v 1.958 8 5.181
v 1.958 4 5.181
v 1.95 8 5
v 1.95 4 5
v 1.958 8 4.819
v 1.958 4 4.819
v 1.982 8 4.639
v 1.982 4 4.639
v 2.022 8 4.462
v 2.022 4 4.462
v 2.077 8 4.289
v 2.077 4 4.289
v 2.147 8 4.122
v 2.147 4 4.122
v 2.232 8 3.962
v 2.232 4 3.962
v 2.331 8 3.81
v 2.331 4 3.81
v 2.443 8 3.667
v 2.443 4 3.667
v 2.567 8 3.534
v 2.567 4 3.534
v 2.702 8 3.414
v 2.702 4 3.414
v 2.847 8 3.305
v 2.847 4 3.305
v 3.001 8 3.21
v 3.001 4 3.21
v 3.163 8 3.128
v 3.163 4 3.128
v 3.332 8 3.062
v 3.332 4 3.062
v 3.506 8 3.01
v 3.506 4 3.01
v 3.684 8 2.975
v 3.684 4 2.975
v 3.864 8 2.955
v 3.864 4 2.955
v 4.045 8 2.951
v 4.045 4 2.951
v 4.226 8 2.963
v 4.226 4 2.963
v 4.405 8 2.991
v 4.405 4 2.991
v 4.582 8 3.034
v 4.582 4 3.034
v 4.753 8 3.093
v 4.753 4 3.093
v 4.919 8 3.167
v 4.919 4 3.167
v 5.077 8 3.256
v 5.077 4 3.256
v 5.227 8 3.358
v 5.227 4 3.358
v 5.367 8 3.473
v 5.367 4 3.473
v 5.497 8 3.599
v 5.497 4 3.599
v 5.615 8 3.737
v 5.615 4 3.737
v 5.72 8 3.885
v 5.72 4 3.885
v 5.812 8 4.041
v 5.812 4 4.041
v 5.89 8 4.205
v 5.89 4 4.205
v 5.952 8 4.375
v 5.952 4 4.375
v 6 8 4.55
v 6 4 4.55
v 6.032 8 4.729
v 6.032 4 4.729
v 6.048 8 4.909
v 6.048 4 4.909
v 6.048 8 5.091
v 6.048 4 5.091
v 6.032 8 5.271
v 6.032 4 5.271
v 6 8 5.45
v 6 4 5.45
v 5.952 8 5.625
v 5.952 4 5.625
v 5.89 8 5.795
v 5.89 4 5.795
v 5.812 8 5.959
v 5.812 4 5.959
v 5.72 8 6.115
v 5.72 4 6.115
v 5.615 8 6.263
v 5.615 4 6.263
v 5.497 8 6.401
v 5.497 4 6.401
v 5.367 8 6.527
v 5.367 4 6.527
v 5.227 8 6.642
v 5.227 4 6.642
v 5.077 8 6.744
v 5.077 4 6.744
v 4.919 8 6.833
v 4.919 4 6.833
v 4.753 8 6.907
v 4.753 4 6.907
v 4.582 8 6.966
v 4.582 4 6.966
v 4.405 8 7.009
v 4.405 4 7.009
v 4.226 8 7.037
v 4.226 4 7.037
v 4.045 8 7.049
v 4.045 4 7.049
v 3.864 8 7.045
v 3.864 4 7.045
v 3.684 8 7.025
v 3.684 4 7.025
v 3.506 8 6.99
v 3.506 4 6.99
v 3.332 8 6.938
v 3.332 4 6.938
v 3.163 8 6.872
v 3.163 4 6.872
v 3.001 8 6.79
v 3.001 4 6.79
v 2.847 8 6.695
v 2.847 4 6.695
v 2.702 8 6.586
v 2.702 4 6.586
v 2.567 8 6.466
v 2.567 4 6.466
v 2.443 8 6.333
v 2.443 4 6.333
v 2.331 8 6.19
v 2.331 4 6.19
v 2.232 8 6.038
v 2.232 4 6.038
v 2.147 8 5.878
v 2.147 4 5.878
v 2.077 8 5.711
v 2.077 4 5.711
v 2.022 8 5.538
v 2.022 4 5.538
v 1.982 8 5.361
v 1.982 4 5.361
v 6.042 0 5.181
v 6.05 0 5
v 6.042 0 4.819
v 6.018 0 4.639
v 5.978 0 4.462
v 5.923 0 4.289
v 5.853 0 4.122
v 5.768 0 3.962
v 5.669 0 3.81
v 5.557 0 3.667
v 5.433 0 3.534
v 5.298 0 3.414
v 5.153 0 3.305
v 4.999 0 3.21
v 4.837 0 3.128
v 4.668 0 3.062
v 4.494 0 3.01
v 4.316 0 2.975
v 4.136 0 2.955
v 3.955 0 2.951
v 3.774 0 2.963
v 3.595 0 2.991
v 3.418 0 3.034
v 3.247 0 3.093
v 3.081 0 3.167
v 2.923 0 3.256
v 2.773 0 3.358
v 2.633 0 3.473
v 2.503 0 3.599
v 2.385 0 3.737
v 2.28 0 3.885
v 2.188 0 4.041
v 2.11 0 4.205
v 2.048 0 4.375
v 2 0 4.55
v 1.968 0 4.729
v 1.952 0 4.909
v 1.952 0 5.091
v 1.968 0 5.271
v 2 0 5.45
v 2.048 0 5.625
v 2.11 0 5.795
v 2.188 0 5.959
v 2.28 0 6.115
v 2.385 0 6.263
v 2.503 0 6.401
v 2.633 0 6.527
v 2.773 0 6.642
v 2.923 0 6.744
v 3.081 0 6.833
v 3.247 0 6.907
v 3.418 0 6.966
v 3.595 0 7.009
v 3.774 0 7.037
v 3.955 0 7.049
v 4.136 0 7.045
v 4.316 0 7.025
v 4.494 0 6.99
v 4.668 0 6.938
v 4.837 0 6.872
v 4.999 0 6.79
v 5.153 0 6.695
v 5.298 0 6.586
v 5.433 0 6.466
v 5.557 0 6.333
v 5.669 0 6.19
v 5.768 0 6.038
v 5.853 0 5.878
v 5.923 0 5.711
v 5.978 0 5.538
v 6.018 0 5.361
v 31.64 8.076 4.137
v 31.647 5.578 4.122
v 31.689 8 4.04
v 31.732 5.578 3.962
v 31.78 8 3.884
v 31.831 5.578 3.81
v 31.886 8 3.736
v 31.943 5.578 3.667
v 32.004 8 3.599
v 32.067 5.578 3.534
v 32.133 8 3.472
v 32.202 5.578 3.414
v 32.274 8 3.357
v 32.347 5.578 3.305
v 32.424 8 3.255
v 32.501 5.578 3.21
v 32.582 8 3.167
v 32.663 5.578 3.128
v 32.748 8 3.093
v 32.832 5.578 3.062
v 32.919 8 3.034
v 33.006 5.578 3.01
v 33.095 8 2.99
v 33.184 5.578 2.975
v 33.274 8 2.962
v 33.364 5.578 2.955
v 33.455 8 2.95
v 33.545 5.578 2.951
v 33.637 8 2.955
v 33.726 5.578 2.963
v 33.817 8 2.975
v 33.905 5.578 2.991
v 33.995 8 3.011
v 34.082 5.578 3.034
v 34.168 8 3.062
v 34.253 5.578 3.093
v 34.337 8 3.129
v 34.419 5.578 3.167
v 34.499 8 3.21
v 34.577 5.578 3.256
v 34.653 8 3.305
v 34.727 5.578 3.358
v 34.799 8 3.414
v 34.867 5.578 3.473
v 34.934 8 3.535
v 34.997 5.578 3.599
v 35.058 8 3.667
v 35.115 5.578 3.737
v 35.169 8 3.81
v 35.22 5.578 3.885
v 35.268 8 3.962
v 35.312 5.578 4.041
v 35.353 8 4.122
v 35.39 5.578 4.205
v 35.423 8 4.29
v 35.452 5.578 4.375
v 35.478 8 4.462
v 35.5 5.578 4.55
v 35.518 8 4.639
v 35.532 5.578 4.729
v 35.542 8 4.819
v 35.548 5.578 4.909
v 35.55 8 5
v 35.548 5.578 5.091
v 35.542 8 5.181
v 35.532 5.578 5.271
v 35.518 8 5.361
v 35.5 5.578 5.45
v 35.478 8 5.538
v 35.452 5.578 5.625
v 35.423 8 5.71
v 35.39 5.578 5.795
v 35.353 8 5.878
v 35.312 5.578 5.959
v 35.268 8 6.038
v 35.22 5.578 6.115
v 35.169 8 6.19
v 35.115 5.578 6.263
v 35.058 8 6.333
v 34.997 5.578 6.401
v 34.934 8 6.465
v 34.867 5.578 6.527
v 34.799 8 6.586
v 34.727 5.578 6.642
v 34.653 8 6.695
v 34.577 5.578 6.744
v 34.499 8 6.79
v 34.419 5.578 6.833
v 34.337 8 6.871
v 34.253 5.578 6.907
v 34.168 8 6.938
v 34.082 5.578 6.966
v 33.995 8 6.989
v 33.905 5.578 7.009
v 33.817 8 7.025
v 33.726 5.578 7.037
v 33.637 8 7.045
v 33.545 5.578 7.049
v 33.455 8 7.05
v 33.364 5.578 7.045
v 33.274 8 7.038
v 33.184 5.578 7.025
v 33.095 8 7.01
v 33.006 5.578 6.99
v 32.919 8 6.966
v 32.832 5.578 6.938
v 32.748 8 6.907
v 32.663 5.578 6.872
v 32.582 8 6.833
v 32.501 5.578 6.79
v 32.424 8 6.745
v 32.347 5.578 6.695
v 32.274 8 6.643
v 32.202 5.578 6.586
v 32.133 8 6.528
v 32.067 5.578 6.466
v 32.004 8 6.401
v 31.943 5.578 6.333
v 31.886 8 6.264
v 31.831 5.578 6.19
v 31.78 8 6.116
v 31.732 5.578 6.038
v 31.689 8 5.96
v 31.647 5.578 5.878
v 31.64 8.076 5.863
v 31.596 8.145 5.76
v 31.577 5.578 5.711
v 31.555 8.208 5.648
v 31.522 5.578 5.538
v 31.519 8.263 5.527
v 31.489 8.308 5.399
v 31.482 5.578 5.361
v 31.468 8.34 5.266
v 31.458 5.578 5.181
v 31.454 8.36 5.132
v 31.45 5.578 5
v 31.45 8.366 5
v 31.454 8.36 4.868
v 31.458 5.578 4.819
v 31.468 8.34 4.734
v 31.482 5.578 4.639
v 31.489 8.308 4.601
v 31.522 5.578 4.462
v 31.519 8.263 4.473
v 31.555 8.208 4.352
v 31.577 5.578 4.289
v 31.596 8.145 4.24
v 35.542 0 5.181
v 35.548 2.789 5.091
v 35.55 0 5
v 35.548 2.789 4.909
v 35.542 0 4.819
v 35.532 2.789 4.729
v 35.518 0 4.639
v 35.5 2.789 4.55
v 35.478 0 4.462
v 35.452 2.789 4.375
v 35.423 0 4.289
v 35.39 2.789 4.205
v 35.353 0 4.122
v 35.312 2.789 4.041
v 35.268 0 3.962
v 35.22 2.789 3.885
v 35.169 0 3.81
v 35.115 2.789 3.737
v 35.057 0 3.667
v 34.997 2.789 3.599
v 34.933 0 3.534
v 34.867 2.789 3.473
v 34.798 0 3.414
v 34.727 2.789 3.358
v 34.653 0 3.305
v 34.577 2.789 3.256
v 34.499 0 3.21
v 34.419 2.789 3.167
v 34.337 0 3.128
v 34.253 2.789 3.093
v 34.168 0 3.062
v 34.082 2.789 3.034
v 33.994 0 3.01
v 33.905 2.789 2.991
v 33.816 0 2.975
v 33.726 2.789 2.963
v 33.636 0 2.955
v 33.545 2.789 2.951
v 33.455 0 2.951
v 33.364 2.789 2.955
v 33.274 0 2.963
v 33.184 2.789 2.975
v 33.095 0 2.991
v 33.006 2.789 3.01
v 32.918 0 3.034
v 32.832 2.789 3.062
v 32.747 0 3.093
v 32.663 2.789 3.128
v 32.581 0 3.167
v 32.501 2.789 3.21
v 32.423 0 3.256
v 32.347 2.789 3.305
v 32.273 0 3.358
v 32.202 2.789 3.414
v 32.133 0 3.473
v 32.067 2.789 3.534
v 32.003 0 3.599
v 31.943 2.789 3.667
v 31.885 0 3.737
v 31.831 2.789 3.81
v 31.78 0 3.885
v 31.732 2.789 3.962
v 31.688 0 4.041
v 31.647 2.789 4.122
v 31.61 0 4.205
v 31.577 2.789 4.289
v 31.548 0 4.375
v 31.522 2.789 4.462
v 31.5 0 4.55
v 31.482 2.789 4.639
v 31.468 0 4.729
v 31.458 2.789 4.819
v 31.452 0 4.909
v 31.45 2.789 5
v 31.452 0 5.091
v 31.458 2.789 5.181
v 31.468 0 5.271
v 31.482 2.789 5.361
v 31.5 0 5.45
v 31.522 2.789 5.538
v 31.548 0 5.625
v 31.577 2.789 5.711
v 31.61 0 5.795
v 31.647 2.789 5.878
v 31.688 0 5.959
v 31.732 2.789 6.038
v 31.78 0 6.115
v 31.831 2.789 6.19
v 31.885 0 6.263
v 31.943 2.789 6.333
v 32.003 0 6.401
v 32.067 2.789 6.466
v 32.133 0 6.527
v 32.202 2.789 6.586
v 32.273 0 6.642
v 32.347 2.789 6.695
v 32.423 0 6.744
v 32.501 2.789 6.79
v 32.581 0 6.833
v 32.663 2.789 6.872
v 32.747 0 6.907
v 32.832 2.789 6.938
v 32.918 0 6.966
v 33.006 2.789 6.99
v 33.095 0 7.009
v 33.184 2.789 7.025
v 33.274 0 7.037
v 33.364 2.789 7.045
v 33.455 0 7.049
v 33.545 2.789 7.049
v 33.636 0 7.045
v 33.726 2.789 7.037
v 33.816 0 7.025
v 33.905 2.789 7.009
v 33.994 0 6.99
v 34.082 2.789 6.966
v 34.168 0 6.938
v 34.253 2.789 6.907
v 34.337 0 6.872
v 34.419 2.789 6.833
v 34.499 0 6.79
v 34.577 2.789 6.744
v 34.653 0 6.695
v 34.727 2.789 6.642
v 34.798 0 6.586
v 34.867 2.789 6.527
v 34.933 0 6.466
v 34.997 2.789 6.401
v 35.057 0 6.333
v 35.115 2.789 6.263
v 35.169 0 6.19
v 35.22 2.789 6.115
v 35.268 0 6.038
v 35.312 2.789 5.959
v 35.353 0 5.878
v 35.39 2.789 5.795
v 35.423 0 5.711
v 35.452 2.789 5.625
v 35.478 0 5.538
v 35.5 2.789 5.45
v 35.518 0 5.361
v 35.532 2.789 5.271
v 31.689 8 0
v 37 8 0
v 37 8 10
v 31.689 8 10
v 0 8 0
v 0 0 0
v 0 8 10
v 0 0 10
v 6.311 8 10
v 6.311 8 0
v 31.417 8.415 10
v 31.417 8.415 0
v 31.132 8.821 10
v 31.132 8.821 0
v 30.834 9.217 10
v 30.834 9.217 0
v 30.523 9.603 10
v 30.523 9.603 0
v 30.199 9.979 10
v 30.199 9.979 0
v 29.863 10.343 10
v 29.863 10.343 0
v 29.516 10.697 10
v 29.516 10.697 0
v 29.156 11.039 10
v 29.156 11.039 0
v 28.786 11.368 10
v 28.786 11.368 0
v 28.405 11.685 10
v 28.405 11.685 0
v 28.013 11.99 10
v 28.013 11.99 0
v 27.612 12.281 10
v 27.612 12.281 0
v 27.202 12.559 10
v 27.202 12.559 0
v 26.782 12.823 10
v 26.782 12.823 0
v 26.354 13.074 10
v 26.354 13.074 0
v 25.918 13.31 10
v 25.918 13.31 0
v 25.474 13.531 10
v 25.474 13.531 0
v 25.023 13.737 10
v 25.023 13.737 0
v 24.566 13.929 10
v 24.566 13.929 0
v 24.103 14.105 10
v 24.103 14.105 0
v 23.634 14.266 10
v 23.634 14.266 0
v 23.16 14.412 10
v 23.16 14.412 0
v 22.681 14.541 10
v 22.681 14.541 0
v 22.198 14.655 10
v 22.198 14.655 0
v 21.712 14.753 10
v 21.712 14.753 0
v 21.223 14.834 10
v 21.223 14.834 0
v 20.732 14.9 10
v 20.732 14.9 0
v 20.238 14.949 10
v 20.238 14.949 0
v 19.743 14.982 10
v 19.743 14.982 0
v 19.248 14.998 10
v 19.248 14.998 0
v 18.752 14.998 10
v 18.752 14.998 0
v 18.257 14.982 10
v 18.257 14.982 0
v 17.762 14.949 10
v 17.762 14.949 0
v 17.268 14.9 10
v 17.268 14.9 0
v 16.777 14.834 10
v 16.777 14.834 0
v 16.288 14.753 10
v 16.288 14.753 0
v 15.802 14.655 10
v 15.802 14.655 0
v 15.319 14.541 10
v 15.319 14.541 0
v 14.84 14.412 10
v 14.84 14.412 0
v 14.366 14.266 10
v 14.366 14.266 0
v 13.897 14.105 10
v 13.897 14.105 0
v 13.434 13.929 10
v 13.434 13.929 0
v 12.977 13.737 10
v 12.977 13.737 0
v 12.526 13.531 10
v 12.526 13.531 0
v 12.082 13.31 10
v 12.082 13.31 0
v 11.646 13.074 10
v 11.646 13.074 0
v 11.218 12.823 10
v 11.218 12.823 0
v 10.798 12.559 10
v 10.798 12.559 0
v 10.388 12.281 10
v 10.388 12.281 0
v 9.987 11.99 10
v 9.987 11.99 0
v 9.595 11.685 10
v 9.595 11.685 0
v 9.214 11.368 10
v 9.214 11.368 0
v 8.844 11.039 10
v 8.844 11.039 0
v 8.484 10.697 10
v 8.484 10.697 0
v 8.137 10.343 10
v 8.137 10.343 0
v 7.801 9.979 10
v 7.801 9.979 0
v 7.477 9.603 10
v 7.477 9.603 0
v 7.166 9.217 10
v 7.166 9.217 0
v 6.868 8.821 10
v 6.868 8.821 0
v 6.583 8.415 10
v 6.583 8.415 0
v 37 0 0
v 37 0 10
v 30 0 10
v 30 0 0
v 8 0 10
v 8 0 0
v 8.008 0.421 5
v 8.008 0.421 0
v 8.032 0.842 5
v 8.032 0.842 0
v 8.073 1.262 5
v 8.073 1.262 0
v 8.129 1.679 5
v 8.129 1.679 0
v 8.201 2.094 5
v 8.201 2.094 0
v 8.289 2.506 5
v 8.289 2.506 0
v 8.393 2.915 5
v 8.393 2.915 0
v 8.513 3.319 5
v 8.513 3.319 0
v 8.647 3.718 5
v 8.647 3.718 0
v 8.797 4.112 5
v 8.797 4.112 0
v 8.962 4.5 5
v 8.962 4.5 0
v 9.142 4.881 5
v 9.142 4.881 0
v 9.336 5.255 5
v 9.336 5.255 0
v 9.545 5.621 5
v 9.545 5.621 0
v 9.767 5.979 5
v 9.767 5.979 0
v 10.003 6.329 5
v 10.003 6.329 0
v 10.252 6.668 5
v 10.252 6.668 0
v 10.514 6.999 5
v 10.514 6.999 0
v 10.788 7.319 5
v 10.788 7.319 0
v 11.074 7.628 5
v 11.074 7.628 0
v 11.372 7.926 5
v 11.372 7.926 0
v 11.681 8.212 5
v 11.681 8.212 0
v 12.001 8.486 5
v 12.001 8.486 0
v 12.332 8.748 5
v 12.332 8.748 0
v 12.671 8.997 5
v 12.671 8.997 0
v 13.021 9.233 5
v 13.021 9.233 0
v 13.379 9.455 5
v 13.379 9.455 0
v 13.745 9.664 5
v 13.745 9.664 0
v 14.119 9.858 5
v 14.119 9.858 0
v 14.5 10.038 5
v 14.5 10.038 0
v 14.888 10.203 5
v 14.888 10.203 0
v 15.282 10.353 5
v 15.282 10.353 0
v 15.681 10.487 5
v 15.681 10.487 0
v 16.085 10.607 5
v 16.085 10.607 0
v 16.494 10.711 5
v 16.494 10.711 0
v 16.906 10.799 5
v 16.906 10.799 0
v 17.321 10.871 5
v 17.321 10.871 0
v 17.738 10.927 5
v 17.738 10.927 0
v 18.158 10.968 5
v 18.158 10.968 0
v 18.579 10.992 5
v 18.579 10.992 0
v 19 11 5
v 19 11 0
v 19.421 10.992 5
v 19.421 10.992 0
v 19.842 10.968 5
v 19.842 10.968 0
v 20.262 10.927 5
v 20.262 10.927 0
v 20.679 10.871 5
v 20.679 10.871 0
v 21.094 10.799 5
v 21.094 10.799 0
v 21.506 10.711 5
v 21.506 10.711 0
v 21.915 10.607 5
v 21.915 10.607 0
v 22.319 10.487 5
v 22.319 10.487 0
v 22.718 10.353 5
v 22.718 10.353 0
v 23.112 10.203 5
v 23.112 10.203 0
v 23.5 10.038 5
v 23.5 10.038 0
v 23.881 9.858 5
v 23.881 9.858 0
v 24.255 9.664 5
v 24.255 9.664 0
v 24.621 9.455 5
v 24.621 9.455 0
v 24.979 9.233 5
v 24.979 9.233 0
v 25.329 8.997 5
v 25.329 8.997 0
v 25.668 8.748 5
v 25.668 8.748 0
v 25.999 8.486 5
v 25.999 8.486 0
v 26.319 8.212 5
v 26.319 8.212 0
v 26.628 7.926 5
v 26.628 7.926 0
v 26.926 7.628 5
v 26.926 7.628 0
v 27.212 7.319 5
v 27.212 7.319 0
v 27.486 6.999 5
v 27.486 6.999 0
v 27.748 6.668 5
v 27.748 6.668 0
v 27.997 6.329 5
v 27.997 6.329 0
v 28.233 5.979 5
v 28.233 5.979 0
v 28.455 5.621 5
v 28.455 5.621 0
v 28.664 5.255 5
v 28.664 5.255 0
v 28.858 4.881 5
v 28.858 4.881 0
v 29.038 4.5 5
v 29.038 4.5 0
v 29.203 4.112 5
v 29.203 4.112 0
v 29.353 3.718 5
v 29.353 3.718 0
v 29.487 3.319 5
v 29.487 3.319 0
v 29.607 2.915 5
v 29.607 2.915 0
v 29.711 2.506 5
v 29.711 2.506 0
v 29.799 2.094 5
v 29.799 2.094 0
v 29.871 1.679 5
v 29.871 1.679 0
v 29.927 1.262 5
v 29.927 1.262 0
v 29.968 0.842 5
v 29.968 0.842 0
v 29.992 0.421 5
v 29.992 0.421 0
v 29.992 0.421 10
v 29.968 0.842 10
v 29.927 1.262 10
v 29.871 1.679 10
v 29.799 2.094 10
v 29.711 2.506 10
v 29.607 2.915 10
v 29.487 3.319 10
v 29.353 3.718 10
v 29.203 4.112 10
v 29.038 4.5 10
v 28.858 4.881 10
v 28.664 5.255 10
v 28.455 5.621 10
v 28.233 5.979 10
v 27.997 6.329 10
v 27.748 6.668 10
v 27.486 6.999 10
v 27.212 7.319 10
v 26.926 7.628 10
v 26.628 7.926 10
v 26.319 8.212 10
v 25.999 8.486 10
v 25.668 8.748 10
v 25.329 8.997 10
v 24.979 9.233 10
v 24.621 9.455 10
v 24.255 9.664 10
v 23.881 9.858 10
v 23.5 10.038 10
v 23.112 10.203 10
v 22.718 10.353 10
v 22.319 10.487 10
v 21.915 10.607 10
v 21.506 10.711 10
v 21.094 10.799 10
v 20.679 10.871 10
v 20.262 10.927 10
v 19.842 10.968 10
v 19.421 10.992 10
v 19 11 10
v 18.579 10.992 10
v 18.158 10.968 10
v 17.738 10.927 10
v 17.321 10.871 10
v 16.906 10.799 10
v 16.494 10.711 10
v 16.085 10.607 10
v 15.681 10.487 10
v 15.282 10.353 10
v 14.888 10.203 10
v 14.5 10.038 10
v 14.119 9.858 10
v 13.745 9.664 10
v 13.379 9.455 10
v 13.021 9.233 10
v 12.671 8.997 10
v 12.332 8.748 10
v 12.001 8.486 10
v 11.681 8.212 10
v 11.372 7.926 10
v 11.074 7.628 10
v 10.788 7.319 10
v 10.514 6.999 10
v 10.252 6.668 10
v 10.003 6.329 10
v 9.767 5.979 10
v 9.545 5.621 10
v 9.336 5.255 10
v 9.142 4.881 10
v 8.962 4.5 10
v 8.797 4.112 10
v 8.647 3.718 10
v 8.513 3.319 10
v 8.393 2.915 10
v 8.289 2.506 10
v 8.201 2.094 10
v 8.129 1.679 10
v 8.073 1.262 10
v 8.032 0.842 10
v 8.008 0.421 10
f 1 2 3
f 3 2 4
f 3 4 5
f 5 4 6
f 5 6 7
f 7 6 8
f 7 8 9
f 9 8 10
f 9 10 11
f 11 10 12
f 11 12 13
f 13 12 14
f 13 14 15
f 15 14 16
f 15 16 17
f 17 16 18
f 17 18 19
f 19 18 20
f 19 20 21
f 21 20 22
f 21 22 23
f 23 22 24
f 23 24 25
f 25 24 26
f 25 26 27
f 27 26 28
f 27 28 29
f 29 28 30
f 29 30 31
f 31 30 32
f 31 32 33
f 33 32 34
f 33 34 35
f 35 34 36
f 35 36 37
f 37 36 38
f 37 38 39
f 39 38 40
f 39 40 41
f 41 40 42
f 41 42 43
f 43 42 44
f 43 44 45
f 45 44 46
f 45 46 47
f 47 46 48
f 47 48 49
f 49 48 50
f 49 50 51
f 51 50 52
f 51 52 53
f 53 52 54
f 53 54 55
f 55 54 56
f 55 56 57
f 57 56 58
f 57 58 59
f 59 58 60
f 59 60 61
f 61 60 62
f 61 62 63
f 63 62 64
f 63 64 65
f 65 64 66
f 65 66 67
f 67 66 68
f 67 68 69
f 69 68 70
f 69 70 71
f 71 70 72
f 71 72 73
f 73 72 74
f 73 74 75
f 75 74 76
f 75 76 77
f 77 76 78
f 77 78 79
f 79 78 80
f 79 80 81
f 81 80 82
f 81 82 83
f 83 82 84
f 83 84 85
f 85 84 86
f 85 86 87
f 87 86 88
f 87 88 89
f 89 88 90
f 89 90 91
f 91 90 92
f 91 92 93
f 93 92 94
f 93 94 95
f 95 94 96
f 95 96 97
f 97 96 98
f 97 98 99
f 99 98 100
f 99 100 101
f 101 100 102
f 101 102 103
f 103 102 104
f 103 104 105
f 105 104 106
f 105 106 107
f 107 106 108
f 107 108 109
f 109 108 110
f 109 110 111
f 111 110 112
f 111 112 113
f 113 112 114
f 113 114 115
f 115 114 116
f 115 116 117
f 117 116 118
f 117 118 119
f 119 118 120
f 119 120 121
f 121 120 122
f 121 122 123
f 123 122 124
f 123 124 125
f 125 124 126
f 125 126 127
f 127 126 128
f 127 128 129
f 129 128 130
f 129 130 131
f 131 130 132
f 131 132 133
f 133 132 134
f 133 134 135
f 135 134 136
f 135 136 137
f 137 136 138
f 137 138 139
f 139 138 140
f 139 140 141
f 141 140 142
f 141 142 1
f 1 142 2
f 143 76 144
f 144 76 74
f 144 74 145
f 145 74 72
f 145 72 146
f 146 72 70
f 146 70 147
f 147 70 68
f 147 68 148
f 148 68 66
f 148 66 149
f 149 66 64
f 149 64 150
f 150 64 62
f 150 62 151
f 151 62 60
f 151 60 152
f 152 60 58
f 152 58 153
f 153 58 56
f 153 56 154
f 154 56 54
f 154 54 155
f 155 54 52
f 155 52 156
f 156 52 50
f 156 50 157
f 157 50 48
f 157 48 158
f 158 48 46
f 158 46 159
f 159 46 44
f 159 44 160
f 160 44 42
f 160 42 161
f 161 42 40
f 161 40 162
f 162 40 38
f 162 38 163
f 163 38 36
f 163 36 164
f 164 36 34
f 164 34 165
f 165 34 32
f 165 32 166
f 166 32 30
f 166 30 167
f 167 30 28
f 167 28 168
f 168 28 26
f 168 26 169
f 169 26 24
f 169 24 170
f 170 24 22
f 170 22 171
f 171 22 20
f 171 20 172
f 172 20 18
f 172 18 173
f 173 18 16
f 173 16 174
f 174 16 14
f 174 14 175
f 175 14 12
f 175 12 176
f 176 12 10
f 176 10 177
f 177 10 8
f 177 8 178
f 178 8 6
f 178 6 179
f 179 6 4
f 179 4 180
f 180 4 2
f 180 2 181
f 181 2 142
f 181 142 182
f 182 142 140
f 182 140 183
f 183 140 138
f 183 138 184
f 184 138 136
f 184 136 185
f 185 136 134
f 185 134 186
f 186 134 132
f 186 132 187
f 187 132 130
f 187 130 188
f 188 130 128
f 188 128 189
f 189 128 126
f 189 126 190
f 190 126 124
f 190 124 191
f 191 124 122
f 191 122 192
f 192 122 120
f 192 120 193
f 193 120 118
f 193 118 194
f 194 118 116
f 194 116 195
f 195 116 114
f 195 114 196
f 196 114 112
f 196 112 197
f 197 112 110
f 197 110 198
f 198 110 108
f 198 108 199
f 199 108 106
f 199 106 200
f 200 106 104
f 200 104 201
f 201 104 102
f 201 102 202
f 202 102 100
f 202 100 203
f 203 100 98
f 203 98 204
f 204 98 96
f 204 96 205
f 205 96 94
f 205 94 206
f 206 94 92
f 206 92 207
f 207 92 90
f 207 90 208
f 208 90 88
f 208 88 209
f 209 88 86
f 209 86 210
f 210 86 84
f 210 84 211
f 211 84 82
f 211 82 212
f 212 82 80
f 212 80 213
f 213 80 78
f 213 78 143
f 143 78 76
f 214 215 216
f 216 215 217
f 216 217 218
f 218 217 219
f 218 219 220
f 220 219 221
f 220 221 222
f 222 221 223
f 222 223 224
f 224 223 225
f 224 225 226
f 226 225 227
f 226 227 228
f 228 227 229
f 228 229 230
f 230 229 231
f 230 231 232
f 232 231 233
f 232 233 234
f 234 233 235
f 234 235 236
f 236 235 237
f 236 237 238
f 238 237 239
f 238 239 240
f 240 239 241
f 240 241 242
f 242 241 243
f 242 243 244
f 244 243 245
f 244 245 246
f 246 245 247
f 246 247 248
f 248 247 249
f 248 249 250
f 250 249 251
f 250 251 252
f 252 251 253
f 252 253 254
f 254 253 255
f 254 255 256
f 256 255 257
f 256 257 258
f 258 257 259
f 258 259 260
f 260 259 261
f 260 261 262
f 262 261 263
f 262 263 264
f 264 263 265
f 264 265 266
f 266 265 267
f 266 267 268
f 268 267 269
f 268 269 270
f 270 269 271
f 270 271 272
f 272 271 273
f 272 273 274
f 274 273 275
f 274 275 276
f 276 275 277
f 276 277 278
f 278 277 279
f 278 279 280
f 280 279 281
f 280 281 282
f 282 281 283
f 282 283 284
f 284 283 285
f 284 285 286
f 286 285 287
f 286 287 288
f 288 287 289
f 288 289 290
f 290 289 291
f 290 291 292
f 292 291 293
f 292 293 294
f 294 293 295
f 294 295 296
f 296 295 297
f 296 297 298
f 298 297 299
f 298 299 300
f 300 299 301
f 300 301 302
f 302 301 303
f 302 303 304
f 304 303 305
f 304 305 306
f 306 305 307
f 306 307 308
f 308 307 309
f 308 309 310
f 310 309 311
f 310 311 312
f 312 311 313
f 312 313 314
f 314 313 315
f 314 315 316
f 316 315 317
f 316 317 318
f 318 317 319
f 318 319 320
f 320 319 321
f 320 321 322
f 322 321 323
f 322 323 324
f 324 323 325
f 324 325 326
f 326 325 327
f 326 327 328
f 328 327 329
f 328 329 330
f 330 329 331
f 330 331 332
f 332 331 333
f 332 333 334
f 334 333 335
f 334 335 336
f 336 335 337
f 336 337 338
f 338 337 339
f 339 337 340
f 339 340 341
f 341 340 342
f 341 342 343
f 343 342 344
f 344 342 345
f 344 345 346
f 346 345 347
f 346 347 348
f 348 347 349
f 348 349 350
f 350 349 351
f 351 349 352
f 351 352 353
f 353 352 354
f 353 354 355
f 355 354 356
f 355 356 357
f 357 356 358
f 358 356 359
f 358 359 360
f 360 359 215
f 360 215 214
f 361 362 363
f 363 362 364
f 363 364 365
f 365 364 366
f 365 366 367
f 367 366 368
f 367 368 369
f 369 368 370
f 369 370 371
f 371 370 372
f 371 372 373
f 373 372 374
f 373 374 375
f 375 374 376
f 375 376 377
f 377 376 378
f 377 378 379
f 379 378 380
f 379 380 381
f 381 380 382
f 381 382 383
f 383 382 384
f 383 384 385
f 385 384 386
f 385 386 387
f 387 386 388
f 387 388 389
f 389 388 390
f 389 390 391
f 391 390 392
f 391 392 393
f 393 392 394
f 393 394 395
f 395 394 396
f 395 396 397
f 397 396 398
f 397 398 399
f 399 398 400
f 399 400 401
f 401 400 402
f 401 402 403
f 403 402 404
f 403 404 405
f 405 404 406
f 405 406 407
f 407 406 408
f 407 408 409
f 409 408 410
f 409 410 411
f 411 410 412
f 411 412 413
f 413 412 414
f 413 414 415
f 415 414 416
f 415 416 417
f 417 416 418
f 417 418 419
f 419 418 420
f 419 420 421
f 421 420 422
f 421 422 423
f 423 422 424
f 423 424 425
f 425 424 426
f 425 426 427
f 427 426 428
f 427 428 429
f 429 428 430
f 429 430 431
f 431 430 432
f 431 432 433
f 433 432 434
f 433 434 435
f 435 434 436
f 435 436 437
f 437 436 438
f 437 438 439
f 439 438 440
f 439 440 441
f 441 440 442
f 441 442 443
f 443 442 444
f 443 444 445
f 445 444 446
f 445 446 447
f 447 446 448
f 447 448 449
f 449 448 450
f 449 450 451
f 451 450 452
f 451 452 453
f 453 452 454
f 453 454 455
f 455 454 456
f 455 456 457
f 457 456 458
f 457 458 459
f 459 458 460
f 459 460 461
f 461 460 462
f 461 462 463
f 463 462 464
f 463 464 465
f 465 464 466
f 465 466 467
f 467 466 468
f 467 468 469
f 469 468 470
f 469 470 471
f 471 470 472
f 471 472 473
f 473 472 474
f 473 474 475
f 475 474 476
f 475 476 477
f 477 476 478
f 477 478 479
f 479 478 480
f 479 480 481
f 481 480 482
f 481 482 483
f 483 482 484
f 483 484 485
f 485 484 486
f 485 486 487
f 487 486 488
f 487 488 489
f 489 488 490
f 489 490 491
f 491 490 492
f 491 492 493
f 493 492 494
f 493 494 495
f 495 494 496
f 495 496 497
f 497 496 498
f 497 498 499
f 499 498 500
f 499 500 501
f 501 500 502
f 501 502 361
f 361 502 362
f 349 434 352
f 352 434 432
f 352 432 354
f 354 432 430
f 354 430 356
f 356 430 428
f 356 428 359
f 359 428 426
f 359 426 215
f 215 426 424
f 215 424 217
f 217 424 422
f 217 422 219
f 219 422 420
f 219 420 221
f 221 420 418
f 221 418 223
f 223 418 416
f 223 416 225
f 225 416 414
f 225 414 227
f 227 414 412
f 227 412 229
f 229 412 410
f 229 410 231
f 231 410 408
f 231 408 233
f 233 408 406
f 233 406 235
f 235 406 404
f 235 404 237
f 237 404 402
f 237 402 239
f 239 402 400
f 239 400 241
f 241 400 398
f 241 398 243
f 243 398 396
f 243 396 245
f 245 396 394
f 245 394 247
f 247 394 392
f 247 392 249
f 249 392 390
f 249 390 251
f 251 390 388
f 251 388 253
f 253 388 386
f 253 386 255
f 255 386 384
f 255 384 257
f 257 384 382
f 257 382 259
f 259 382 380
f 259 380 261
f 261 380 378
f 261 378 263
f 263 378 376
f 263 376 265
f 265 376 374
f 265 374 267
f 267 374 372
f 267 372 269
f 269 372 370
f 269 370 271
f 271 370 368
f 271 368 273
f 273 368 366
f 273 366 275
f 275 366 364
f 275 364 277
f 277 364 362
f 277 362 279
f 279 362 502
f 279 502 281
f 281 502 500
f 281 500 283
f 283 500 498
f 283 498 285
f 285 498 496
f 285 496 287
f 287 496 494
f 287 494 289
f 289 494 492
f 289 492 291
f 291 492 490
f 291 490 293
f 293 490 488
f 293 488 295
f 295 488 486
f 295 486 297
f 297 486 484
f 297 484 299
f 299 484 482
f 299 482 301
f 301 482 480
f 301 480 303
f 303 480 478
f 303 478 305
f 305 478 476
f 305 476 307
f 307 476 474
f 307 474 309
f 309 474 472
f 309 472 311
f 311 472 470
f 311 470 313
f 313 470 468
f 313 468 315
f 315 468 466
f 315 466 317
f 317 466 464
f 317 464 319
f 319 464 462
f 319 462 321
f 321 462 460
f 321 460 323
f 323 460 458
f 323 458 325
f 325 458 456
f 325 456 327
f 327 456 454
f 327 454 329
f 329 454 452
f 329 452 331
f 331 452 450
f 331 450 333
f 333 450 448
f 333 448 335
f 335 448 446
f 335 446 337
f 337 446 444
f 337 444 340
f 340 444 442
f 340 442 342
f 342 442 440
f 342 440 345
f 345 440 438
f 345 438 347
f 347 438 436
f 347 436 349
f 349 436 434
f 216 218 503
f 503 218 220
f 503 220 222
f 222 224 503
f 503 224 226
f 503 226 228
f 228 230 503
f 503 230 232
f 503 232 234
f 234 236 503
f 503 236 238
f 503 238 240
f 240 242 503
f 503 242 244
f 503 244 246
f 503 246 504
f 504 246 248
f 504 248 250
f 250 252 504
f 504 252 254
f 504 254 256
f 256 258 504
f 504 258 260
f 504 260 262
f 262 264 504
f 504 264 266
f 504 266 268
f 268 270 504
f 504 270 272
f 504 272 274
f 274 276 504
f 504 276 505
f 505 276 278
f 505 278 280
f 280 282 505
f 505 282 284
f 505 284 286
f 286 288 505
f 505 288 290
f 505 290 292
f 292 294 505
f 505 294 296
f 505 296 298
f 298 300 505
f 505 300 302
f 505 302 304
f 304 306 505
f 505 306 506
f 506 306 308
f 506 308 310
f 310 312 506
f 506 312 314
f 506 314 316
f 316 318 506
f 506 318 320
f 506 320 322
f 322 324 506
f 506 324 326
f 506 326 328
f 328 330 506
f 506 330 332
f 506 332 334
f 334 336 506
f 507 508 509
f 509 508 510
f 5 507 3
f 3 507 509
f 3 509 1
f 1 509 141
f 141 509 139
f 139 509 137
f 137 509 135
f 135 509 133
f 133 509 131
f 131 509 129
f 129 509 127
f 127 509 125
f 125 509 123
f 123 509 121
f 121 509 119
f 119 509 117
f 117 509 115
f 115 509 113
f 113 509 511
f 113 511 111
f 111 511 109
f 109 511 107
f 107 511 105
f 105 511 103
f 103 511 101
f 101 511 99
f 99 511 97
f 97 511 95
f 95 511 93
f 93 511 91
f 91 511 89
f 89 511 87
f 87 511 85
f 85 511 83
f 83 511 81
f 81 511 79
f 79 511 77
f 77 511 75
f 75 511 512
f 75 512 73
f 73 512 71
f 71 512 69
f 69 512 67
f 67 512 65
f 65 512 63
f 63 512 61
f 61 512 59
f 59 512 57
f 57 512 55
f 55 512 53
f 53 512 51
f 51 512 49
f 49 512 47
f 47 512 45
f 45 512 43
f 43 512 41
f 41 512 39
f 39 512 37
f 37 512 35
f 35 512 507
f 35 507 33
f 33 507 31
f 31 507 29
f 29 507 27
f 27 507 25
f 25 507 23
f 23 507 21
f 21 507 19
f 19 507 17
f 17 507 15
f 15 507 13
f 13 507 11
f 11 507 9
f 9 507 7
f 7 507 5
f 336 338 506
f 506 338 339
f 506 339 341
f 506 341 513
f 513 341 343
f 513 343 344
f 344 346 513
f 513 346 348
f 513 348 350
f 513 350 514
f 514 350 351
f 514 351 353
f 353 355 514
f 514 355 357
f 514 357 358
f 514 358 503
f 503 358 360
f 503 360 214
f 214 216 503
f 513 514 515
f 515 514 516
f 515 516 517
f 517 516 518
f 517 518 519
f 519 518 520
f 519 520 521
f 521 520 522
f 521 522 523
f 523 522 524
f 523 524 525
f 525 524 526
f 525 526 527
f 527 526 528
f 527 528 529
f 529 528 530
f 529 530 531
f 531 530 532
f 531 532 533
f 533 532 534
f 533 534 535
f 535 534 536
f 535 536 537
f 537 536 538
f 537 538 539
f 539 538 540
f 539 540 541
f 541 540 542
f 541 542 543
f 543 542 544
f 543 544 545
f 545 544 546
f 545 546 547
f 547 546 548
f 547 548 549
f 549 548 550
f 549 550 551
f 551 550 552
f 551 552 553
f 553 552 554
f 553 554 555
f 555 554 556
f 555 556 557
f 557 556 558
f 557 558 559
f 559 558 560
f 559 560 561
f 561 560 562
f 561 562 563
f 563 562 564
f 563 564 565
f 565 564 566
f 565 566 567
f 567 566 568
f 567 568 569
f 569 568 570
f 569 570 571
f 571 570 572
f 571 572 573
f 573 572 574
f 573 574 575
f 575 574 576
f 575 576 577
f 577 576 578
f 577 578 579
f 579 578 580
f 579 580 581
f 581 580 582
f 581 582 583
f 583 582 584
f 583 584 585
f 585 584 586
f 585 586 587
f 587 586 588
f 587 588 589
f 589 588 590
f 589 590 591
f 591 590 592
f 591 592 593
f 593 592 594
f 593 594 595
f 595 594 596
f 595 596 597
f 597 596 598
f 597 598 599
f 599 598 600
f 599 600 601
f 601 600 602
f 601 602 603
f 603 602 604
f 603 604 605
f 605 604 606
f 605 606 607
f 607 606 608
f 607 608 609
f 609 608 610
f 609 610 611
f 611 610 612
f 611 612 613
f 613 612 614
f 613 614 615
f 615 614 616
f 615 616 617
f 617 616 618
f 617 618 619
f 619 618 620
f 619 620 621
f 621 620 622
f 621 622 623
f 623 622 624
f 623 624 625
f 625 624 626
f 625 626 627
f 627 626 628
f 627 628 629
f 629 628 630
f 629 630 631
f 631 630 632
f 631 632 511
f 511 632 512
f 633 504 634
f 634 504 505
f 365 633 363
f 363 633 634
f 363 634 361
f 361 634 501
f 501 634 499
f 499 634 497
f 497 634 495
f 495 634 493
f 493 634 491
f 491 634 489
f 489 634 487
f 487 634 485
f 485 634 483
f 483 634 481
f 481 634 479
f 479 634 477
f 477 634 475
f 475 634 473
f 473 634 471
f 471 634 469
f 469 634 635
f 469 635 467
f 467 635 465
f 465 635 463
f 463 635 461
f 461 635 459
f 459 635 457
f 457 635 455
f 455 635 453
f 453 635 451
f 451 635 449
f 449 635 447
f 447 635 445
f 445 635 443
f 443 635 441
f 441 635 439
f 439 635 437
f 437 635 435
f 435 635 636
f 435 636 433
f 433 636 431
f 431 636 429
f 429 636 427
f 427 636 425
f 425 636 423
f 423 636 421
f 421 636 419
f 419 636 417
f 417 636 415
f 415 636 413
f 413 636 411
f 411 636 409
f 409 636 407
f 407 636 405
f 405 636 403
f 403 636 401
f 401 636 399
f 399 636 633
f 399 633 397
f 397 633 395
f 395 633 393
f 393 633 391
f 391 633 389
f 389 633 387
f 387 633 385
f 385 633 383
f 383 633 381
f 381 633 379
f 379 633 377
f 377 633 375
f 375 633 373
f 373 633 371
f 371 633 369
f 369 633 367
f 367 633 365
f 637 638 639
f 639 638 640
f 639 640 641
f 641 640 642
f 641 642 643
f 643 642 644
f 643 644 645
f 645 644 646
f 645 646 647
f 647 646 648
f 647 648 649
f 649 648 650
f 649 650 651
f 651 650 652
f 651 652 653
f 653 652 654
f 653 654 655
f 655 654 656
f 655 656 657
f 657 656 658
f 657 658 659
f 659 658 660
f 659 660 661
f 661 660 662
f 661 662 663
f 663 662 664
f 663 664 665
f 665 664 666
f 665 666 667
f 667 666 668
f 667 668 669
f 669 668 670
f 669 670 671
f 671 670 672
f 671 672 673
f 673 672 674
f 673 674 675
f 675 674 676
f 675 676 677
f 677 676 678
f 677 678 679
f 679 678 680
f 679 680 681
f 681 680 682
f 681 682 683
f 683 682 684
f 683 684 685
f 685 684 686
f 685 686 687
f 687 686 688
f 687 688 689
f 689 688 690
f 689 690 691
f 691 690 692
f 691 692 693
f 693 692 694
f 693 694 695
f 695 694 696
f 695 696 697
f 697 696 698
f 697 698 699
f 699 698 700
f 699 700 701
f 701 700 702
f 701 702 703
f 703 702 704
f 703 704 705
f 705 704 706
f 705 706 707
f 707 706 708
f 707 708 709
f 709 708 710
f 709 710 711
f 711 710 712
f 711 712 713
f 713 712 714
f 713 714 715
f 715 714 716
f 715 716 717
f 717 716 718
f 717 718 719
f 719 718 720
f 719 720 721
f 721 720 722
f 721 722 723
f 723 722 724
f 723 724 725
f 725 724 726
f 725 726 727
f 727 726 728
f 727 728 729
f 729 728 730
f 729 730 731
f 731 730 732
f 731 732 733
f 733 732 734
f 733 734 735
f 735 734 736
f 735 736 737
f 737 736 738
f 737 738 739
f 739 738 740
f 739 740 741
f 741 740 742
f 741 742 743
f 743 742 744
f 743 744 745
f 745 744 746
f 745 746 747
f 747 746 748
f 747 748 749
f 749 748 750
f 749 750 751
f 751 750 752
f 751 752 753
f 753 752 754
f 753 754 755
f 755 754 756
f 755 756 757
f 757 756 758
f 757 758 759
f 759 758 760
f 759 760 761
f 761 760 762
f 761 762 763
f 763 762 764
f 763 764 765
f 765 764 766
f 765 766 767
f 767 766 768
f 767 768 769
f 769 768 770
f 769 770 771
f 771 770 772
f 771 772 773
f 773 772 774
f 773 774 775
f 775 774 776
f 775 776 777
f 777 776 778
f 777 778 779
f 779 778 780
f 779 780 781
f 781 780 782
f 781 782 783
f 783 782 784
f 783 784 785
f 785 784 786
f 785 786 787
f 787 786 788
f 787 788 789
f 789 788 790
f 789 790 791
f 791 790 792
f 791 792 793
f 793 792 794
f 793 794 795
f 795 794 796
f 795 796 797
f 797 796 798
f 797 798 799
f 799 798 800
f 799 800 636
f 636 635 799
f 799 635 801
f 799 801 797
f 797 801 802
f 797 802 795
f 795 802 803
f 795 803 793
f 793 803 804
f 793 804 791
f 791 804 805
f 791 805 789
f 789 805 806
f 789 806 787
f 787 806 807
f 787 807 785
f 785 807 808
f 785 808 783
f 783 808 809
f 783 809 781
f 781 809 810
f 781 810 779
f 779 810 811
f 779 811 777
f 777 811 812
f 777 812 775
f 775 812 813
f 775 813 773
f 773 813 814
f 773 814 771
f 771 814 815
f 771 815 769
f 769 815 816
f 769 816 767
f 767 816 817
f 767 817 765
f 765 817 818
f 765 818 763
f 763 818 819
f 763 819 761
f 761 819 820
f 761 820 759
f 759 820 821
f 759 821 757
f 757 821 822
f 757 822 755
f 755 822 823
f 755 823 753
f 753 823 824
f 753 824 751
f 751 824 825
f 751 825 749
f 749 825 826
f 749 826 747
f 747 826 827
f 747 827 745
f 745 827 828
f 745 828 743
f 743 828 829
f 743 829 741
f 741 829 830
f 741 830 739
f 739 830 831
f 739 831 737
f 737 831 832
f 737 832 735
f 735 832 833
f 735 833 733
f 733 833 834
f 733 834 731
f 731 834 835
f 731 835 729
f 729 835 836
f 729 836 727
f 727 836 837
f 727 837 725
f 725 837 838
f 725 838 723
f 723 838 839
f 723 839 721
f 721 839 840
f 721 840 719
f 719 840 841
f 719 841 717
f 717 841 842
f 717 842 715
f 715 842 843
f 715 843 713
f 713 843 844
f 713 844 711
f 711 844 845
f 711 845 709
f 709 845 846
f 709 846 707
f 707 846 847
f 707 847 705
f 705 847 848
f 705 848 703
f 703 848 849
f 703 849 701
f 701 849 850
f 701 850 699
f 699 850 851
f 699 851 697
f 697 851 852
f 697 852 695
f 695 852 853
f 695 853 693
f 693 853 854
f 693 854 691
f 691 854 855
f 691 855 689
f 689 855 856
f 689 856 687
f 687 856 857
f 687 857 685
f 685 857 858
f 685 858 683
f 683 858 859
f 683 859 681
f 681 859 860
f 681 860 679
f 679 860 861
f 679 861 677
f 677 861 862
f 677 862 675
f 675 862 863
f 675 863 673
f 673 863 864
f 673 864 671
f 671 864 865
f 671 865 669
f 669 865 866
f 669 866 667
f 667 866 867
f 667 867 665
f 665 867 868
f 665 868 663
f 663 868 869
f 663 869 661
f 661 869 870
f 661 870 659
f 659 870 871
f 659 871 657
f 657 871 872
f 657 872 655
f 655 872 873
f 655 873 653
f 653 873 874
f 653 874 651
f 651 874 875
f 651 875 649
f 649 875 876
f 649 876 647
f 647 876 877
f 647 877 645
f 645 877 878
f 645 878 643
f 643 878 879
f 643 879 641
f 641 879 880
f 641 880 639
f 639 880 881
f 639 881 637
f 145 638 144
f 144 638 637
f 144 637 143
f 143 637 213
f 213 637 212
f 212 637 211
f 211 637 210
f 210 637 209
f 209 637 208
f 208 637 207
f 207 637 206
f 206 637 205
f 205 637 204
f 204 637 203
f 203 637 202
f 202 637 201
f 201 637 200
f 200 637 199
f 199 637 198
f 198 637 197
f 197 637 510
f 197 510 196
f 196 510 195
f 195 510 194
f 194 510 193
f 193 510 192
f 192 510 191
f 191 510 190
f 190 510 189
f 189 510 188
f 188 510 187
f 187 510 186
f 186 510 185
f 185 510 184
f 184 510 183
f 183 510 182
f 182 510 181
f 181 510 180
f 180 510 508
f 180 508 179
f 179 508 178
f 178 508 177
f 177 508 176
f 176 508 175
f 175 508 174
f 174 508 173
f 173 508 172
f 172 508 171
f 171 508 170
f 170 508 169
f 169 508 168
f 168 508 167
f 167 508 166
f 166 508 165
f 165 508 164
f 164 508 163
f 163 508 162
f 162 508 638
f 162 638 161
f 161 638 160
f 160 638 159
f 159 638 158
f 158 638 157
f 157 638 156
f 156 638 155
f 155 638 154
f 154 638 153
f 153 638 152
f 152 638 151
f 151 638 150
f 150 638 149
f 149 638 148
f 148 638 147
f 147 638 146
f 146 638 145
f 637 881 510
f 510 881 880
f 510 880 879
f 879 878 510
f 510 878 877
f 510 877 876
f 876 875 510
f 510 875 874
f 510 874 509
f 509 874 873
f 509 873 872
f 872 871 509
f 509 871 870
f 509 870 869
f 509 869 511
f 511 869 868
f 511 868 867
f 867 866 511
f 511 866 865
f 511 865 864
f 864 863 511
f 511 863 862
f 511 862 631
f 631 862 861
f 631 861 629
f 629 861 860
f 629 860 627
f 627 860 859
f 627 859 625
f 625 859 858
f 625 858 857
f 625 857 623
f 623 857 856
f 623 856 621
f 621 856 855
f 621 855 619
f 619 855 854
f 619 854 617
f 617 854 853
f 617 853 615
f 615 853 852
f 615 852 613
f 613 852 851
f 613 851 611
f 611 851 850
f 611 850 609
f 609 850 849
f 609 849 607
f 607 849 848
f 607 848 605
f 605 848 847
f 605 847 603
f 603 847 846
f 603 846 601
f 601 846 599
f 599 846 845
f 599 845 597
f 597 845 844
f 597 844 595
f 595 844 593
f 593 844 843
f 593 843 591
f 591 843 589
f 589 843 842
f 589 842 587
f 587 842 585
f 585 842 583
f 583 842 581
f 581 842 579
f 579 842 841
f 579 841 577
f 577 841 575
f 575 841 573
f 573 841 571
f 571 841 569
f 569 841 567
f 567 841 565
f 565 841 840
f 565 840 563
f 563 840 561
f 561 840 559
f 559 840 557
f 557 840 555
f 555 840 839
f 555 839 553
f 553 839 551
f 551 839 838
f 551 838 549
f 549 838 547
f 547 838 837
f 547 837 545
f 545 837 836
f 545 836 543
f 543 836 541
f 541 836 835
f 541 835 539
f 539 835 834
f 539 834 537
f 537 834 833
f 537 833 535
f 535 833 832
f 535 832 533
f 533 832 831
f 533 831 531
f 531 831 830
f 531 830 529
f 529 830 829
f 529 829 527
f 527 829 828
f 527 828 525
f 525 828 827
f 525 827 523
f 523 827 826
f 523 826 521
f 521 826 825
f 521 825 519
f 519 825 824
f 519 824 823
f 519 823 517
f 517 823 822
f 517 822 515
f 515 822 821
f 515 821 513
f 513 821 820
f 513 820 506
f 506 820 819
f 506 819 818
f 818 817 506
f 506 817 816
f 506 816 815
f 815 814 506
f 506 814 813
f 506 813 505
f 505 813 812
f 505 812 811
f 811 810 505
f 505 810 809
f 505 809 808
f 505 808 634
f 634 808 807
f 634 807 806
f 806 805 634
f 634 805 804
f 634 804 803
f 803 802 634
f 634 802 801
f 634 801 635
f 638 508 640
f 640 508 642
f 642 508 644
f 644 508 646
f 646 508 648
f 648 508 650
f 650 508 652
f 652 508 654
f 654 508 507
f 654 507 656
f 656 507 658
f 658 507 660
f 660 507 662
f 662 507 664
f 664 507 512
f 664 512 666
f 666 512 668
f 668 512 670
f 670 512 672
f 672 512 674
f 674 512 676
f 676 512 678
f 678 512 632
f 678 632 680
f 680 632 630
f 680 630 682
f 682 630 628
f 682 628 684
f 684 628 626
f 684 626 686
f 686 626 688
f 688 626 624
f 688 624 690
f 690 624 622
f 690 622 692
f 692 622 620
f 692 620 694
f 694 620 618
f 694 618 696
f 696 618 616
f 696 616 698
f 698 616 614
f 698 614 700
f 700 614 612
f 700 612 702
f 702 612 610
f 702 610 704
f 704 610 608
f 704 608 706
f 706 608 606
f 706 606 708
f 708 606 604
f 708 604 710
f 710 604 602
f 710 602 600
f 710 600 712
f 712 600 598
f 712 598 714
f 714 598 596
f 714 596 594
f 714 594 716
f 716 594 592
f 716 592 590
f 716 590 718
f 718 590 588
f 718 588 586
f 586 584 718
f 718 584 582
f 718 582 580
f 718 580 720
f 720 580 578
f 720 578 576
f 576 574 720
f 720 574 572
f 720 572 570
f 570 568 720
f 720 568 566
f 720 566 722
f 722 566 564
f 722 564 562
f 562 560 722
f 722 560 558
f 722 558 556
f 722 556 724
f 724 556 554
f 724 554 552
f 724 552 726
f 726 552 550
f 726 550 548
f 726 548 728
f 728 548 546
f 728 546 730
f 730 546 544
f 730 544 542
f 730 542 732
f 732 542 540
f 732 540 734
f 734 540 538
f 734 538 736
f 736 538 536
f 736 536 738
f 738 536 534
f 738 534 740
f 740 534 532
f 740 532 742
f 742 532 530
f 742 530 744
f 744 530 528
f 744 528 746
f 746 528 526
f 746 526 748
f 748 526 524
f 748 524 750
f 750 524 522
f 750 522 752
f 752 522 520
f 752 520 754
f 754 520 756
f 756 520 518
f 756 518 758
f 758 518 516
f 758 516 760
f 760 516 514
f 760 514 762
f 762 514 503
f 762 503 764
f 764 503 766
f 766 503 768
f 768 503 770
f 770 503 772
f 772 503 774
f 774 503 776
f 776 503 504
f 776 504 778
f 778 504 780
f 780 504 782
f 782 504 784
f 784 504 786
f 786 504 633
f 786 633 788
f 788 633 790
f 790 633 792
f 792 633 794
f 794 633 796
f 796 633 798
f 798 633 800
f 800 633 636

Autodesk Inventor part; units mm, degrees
ref_plane "YZ Plane" through (0, 0, 0) normal (1, 0, 0) x (0, 1, 0)
ref_plane "XZ Plane" through (0, 0, 0) normal (0, 1, 0) x (-1, 0, 0)
ref_plane "XY Plane" through (0, 0, 0) normal (0, 0, 1) x (1, 0, 0)
sketch "Boceto1" plane through (0, 0, 0) normal (0, 0, 1) x (1, 0, 0)
  line L0 (0, 0) -> (8, 0)
  line L1 (30, 0) -> (37, 0)
  arc A0 (30, 0) -> (8, 0) centre (19, 0) ccw
  line L2 (0, 0) -> (0, 8)
  line L3 (0, 8) -> (6.3114, 8)
  line L4 (37, 0) -> (37, 8)
  line L5 (37, 8) -> (31.6886, 8)
  arc A1 (31.6886, 8) -> (6.3114, 8) centre (19, 0) ccw
  line L6 (19, 11) -> (19, 15) construction
  dimension "d0" = 11
  dimension "d1" = 37
  dimension "d2" = 8
  dimension "d3" = 8
  dimension "d5" = 4
extrude "Extrusión1" add sketch "Boceto1" along normal blind 10
sketch "Boceto3" plane through (0, 0, 0) normal (0, -1, 0) x (1, 0, 0)
  line L0 (0, 0) -> (8, 0) projected
  line L1 (0, 0) -> (0, 10) projected
  line L2 (30, 0) -> (30, 10) projected
  line L3 (30, 0) -> (37, 0) projected
  circle A0 centre (4, 5) radius 2.05
  circle A1 centre (33.5, 5) radius 2.05
  point P0 (0, 5)
  point P1 (30, 5)
  point P2 (4, 0)
  point P3 (33.5, 0)
  dimension "d12" = 4.1
  dimension "d13" = 4.1
extrude "Extrusión3" cut sketch "Boceto3" against normal through all
properties part number "SoporteMotorCierre"
